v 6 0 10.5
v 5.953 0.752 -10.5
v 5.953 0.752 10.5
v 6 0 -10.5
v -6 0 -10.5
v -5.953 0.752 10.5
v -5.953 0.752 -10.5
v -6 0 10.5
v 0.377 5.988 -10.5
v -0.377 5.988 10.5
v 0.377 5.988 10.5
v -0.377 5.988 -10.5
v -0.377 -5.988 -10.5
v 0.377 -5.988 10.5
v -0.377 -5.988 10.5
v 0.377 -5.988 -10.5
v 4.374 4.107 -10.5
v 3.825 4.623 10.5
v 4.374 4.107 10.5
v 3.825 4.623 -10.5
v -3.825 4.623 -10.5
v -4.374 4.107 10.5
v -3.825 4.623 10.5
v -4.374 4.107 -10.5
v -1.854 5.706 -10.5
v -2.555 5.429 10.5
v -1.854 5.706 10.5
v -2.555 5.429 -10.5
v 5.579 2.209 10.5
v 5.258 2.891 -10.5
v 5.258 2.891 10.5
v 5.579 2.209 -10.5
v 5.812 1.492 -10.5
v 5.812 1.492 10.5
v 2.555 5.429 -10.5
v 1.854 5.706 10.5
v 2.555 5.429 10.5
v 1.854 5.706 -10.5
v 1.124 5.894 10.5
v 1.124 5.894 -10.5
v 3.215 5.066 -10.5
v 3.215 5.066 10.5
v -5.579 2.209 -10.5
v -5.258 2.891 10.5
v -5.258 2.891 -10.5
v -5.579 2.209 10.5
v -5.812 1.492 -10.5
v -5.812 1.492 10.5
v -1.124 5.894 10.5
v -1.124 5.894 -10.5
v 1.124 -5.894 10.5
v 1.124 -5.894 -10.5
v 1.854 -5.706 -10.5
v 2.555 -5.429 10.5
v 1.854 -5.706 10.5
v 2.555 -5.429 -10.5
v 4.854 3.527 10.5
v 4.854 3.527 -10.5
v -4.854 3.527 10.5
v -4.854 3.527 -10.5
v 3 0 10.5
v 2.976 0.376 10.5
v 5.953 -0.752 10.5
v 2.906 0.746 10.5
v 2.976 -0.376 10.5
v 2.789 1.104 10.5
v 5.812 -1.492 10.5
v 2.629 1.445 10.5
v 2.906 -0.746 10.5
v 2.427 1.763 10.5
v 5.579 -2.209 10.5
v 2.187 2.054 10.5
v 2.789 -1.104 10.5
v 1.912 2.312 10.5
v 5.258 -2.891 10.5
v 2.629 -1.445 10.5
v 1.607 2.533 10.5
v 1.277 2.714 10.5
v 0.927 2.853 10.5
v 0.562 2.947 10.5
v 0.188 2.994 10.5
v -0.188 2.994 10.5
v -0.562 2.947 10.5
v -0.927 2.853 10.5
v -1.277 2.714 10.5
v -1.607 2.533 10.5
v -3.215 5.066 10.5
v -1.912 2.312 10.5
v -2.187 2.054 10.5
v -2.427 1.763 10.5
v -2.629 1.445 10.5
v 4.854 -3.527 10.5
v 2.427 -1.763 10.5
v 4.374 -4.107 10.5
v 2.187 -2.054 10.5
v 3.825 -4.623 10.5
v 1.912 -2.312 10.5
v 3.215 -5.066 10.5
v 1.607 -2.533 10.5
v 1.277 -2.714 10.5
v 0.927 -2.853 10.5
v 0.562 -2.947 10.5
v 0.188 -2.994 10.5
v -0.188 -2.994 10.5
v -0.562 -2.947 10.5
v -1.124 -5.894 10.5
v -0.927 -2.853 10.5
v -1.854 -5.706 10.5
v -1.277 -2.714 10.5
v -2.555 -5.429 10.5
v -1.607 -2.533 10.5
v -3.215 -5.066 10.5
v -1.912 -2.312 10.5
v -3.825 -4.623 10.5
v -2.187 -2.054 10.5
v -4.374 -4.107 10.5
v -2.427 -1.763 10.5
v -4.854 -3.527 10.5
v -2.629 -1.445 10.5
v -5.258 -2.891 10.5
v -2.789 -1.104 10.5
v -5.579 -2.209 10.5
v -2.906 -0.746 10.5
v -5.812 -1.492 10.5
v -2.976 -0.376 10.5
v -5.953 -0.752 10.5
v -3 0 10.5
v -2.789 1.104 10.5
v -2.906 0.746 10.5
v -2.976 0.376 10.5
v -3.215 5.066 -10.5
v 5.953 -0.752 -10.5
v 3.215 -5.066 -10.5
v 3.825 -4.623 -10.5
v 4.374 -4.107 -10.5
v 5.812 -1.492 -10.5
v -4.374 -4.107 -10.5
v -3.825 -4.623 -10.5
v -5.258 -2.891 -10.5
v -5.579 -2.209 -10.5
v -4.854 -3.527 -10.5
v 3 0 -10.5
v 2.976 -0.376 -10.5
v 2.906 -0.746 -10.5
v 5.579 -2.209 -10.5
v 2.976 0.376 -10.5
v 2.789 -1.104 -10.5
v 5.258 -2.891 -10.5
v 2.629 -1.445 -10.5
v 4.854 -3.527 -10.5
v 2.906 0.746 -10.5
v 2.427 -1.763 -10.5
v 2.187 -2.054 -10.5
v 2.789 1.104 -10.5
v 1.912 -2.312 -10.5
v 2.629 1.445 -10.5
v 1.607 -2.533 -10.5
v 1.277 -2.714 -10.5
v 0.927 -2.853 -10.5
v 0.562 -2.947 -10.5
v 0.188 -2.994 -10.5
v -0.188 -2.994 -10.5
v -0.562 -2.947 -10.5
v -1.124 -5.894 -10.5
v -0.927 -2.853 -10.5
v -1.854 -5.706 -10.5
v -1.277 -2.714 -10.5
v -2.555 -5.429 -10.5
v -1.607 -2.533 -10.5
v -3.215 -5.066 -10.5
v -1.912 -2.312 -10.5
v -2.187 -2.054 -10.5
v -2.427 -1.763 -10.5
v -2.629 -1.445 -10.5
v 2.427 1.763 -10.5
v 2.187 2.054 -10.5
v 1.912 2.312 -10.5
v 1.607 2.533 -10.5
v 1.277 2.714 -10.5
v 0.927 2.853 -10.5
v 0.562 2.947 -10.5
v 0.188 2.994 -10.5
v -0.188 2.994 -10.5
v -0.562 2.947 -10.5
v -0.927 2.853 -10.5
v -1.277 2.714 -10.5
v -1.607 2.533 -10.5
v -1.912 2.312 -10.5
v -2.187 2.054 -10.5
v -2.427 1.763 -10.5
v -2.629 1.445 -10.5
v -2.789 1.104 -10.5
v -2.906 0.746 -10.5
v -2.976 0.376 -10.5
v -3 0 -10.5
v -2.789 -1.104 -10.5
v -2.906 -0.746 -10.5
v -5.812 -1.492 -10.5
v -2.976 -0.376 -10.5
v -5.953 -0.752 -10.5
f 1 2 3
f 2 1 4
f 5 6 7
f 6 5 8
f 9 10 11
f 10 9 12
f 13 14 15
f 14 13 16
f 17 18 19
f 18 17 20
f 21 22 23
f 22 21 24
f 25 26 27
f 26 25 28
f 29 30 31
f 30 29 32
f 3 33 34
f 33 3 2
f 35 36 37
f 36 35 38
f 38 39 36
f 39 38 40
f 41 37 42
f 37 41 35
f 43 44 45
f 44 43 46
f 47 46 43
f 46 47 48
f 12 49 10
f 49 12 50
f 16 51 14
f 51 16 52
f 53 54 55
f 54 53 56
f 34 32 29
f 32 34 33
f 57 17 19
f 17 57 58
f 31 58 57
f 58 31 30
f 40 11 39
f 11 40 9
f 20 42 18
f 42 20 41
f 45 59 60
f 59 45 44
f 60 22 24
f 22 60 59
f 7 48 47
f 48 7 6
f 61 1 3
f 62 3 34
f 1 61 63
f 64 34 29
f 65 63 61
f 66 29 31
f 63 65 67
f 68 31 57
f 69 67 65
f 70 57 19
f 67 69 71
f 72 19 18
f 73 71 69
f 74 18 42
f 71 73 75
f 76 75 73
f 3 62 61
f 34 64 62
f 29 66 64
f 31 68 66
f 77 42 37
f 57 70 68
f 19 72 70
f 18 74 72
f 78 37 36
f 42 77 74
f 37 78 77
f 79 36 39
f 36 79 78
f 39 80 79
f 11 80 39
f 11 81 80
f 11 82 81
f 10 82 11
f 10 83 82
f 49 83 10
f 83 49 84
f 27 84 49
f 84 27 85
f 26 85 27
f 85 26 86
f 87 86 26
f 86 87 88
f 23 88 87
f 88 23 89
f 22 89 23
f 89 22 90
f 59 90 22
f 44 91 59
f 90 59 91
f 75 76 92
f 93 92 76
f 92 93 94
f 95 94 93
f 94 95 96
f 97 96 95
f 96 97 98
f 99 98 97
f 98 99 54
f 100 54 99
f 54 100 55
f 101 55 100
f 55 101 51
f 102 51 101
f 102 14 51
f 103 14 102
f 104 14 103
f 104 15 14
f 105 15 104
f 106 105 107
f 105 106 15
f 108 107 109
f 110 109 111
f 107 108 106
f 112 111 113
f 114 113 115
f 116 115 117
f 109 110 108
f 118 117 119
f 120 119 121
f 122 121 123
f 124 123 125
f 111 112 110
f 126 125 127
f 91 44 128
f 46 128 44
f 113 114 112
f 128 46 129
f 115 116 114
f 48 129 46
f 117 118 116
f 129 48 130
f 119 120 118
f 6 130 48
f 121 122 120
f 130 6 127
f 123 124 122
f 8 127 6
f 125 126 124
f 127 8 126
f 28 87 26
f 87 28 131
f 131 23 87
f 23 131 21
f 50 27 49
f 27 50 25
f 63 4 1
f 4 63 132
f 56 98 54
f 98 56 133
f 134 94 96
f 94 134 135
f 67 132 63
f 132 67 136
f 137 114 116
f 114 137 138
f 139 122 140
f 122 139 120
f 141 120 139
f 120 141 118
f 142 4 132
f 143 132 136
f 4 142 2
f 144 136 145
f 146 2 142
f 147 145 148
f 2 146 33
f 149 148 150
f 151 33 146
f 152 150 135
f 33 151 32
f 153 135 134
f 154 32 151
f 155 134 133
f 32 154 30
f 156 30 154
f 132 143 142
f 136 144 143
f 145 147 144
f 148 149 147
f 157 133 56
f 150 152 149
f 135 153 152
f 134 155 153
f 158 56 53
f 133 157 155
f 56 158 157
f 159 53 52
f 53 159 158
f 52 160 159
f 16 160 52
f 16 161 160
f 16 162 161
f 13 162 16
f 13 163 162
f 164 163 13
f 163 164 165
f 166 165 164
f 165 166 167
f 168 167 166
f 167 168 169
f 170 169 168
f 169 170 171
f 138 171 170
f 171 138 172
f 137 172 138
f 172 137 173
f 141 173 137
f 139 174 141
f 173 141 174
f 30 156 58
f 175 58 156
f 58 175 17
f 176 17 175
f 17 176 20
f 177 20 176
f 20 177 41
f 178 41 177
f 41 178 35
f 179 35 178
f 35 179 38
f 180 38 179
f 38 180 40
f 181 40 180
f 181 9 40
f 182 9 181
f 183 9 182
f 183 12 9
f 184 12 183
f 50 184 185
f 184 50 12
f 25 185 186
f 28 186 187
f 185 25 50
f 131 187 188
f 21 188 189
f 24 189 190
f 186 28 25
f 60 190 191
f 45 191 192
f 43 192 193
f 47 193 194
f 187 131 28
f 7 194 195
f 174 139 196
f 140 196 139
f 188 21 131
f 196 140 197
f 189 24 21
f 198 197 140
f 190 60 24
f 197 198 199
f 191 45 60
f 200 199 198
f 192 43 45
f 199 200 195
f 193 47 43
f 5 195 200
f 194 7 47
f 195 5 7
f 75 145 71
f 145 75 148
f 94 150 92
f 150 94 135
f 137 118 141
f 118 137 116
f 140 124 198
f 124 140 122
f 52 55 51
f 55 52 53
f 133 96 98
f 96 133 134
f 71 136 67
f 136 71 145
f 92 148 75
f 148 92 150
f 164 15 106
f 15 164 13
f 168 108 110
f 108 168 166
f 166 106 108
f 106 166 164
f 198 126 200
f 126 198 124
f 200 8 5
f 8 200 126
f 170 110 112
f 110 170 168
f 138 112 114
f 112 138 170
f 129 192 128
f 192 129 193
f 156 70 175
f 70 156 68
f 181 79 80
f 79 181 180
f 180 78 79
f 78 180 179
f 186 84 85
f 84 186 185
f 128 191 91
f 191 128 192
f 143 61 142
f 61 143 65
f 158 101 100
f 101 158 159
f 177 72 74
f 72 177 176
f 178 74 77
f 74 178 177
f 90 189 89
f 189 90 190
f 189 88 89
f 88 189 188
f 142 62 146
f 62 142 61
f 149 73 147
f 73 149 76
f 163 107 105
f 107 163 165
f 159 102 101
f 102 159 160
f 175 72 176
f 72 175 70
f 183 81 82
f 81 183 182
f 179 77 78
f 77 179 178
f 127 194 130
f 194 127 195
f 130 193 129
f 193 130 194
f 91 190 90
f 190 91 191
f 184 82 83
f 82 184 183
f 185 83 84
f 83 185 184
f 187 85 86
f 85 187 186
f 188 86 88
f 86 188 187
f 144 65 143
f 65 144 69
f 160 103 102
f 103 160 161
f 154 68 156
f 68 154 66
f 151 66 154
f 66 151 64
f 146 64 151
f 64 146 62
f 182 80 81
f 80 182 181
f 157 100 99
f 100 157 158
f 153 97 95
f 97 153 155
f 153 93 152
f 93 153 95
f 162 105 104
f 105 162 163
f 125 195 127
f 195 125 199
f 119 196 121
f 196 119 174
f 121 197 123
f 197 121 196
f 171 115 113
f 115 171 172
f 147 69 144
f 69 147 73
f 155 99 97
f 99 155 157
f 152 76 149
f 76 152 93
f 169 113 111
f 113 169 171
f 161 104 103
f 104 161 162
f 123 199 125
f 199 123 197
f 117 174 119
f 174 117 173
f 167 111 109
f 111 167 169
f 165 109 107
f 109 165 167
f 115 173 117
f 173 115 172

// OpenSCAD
$fn = 50;


difference() {
	union() {
		translate(v = [0, 0, -10.5000000000]) {
			cylinder(h = 21, r = 6.0000000000);
		}
	}
	union() {
		translate(v = [0, 0, -100.0000000000]) {
			cylinder(h = 200, r = 3);
		}
	}
}
